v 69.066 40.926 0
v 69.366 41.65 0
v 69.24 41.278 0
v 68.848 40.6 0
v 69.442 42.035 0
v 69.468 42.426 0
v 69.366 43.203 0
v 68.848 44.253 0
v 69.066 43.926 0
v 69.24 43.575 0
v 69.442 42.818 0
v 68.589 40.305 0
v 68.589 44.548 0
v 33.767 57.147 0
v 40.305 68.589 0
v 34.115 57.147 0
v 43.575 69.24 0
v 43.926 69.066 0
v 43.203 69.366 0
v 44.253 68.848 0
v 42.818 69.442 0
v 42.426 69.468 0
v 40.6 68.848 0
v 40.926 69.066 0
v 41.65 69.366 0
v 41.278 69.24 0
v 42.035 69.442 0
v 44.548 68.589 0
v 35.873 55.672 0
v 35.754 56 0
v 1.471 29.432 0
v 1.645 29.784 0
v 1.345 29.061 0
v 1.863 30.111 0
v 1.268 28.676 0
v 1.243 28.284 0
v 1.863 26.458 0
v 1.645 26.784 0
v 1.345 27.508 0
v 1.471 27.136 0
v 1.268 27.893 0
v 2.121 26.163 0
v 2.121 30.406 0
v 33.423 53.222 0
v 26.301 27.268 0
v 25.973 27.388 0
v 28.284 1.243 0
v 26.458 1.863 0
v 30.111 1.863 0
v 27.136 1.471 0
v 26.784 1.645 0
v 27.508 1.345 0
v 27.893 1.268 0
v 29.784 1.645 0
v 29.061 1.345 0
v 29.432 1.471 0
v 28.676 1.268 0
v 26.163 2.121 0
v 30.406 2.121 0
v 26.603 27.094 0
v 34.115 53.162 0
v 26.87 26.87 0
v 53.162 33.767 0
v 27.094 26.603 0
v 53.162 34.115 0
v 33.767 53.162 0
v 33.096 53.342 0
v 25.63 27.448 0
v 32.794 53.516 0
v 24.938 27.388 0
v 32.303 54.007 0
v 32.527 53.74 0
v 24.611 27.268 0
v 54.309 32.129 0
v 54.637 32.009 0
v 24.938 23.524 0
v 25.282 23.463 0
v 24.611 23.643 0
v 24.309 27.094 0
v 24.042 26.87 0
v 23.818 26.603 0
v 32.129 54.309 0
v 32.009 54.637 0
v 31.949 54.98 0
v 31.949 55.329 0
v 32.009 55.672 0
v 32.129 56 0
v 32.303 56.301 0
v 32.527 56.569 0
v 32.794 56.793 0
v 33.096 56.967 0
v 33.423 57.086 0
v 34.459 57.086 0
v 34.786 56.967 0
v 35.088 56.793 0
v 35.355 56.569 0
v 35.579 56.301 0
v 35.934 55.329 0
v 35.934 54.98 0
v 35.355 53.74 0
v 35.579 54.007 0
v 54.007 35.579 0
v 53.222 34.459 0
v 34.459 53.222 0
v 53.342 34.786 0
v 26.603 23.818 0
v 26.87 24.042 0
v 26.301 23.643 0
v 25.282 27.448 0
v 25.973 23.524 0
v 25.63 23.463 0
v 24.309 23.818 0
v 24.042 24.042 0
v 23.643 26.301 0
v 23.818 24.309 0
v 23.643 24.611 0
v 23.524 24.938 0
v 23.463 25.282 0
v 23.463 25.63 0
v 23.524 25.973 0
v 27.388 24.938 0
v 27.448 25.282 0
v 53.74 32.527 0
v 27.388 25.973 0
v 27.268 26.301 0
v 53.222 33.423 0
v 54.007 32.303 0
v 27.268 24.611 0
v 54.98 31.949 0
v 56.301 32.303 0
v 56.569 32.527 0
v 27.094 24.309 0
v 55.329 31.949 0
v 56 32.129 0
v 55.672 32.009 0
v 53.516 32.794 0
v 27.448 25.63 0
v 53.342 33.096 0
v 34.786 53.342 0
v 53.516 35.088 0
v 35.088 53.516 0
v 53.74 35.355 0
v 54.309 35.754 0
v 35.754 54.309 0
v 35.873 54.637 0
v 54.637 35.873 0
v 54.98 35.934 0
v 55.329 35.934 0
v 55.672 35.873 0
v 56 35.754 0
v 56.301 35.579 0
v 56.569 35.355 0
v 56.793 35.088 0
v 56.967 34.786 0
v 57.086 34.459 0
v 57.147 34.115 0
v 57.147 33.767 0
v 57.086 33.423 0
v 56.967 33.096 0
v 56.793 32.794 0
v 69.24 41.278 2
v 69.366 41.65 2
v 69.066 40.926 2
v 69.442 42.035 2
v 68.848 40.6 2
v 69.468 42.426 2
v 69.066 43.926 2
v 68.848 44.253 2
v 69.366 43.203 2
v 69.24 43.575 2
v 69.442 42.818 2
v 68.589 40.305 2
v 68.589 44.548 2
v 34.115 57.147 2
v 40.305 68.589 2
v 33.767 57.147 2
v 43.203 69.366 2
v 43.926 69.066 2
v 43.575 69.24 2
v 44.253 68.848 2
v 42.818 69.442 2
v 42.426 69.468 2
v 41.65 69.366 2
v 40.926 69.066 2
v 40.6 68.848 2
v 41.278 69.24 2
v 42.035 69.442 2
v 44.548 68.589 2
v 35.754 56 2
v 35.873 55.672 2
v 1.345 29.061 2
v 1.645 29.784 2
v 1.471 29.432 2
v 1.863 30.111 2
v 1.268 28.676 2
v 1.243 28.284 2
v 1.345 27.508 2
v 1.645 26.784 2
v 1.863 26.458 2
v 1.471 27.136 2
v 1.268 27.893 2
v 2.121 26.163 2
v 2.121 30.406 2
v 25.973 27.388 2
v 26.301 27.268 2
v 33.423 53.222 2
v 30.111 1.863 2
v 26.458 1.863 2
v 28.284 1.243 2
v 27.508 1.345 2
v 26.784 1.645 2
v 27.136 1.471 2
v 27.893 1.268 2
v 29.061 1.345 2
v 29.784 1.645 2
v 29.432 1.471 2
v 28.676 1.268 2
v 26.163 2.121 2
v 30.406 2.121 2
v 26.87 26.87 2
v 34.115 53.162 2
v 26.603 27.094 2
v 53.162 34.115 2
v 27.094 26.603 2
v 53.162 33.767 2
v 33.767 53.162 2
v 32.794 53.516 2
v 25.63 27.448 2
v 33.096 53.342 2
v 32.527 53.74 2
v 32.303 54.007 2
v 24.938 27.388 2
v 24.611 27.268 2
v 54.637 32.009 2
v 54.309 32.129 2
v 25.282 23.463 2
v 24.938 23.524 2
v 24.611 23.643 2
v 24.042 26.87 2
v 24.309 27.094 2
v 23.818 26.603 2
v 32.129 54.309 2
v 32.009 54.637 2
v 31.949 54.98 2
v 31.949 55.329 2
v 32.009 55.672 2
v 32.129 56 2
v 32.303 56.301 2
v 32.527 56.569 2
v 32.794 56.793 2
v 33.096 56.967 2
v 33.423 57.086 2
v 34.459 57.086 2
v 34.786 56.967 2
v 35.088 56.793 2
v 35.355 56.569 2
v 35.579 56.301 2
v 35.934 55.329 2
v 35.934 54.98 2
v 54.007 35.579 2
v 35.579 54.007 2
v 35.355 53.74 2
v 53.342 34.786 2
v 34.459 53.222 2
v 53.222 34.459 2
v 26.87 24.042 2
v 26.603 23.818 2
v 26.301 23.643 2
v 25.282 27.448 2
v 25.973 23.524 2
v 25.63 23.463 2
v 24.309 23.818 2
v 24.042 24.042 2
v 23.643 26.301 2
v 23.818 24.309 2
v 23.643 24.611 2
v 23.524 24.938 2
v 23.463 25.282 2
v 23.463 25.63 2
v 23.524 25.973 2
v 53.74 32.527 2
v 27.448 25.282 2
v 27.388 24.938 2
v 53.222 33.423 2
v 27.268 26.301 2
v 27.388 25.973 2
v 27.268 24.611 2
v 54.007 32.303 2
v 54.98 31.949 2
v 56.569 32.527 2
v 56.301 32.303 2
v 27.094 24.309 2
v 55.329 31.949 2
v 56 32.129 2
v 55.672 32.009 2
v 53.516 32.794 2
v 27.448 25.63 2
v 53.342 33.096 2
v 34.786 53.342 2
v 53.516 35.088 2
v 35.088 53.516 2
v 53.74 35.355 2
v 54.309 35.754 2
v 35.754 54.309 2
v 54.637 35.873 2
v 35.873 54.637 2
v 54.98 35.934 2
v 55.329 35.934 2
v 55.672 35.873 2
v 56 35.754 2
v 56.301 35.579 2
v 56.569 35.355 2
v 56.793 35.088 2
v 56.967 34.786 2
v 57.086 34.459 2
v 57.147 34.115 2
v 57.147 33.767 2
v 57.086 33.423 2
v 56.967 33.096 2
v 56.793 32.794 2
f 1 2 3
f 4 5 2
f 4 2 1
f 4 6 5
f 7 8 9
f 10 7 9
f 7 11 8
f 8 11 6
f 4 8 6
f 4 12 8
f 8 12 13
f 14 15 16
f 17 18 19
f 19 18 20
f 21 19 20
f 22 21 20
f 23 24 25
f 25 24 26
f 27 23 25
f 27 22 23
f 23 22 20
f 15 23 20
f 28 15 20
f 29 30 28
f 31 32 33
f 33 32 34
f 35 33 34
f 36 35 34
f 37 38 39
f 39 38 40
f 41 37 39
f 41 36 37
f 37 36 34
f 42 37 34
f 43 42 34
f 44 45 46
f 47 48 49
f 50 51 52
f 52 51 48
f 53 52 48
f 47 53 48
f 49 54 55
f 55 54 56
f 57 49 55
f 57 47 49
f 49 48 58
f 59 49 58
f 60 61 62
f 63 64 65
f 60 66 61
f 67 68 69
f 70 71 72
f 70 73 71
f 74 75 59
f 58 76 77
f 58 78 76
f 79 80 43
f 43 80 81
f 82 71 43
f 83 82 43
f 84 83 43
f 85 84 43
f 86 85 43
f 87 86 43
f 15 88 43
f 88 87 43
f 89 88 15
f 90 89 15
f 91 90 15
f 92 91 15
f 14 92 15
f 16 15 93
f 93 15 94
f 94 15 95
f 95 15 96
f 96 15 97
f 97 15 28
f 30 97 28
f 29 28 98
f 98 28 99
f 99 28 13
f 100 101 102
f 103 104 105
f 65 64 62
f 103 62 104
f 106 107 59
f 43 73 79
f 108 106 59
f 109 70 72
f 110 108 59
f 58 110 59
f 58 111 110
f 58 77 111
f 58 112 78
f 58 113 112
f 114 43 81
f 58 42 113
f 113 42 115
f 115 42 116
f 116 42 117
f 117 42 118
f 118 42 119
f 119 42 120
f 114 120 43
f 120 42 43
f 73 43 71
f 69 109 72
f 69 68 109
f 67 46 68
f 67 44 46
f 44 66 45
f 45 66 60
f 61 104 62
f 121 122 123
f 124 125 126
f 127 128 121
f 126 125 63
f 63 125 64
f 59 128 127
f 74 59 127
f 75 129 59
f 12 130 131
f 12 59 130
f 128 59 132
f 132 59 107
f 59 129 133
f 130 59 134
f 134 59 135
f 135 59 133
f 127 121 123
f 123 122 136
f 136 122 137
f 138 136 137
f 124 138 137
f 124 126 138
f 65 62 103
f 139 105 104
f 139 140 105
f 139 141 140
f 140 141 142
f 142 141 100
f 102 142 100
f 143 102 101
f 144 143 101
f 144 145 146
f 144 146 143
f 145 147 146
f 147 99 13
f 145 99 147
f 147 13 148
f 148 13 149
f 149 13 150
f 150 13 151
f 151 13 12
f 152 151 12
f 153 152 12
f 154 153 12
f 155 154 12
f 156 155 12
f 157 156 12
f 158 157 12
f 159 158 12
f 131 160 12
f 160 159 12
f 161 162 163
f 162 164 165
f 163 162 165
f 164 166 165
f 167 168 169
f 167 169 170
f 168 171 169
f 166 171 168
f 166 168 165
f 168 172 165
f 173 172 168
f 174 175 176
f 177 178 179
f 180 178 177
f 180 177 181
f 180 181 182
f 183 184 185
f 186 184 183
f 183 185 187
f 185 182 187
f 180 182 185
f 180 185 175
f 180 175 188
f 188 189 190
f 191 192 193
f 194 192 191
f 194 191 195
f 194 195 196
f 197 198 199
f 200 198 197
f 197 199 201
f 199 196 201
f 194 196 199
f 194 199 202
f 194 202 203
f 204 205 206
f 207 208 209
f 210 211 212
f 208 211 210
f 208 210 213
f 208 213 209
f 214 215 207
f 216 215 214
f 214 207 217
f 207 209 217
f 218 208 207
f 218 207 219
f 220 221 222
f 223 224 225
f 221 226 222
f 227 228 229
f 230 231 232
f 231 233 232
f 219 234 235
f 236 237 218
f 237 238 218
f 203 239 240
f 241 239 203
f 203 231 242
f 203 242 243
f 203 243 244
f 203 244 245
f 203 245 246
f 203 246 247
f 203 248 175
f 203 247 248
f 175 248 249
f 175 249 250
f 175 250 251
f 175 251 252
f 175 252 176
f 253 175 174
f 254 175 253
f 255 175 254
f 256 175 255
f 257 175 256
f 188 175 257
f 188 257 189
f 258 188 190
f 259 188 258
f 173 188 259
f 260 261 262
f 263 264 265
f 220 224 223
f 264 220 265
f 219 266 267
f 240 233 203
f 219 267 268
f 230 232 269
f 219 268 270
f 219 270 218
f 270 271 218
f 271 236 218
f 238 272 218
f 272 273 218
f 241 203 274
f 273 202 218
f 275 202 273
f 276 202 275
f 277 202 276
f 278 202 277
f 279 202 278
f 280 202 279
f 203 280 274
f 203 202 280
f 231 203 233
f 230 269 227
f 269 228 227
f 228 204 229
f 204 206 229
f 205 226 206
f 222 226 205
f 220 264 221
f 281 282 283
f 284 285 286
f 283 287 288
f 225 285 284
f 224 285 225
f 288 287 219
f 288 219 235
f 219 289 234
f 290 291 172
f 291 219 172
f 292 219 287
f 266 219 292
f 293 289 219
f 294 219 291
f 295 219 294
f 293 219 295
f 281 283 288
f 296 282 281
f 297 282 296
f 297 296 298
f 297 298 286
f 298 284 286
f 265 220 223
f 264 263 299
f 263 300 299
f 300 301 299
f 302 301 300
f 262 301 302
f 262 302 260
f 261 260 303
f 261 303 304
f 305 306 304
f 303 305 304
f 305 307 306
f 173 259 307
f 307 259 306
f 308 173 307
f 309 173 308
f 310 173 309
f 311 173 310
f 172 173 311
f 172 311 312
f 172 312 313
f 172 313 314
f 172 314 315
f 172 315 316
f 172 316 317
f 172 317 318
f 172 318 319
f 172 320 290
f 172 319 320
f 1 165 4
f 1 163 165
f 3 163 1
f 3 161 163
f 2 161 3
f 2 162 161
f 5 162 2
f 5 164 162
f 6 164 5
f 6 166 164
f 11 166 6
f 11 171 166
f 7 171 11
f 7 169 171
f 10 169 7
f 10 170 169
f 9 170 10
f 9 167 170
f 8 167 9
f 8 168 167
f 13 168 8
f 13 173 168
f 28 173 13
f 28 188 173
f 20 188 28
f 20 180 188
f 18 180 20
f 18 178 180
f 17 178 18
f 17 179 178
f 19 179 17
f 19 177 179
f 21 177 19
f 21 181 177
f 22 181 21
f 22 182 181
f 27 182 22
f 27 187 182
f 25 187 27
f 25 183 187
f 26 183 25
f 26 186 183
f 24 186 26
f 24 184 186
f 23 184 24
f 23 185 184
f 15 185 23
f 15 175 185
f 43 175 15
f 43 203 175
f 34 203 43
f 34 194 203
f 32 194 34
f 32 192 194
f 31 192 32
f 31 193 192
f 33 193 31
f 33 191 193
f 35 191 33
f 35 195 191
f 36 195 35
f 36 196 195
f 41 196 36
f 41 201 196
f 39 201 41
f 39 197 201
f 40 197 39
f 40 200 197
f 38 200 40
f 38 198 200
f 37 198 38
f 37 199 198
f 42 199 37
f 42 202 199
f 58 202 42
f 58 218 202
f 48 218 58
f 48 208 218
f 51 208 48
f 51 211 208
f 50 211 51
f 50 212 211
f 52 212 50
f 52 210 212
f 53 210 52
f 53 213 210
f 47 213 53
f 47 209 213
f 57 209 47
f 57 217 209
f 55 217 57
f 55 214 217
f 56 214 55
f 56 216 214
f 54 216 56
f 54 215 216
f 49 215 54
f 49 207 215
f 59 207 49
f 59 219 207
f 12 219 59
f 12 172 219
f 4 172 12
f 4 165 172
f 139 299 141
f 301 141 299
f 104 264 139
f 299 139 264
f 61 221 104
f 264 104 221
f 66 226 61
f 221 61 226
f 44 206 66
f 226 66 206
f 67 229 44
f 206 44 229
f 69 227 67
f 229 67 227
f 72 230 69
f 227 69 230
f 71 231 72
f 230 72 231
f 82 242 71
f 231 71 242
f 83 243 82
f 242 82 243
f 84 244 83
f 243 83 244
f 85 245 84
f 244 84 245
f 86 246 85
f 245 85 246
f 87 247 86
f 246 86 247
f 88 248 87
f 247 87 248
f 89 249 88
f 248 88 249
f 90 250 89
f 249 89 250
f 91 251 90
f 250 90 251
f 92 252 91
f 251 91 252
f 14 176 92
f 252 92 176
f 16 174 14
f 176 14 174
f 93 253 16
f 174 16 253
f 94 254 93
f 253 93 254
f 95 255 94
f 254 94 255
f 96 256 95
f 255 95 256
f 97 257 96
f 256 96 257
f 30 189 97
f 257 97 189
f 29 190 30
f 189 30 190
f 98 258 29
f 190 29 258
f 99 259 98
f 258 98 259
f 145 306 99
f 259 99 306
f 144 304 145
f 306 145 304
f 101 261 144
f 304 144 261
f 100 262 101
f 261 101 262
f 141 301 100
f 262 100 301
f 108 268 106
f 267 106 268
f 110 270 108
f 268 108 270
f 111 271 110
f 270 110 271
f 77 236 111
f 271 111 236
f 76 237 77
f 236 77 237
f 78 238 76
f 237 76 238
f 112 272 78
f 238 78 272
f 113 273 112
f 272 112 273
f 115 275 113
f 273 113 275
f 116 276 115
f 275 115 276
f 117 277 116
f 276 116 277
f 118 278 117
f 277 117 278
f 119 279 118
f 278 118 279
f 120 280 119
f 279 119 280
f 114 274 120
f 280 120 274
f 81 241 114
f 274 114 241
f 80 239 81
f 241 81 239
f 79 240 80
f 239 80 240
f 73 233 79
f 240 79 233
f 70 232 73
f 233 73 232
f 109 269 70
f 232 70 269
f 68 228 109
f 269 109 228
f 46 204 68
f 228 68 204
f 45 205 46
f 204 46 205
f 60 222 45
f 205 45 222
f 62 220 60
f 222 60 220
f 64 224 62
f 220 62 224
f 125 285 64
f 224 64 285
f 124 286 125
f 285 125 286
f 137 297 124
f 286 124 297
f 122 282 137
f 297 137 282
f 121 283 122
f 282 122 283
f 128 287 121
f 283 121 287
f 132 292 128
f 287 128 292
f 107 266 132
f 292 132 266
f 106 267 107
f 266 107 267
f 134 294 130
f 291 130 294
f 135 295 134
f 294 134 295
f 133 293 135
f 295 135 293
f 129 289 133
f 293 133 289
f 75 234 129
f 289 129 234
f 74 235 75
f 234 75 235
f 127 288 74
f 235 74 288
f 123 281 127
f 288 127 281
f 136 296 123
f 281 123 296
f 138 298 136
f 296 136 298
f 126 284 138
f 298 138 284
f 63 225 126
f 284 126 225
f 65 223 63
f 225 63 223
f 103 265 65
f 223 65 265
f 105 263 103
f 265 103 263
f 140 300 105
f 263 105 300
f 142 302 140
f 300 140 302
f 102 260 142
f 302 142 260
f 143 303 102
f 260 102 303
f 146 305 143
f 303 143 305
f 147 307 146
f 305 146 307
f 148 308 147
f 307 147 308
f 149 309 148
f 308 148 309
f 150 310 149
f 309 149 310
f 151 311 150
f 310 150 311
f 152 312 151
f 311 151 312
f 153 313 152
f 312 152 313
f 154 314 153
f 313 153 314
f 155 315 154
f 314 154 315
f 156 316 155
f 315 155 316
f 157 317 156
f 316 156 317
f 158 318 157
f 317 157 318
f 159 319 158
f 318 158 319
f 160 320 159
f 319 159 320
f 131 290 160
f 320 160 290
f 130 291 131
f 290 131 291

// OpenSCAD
//
// S500 Top-Plate Carbon Doublers (Rectangular) — OpenSCAD
// Author: ChatGPT
// Version: v0.2 (2025-10-28) — fix: ternary module call -> if/else; use let() scoping
//

export_mode = "3D";    // "3D" or "DXF"
show_stl    = false;
show_patches= true;
print_one   = true;
stl_alpha   = 0.25;

stl_path    = "top_frame_s500.STL";
stl_rotate_z    = 45;            
stl_translate   = [-97.5, 0, 0];    
stl_scale       = 1.0;          

cf_thickness = 2.0;  
corner_r     = 3.0;  
kerf         = 0.10; 

patch_len    = 60;    
patch_wid    = 40;    
r_patch      = 50;    

arm_angles   = [45, 135, 225, 315];

hole_d        = 4;  
slot_d        = 3.2;  
slot_len      = 0;    

pattern_arm0 = [[-14,0],[13,-15],[13,15],[-14,0]];
pattern_arm1 = pattern_arm0;
pattern_arm2 = pattern_arm0;
pattern_arm3 = pattern_arm0;

module rounded_rect_2d(w, h, r) {
    offset(delta=kerf) offset(delta=-kerf)
    hull() {
        translate([ w/2 - r,  h/2 - r]) circle(r=r, $fn=48);
        translate([-w/2 + r,  h/2 - r]) circle(r=r, $fn=48);
        translate([ w/2 - r, -h/2 + r]) circle(r=r, $fn=48);
        translate([-w/2 + r, -h/2 + r]) circle(r=r, $fn=48);
    }
}

module hole_2d(d) { circle(d=d, $fn=36); }

module slot_2d(d, L) {
    hull() {
        translate([+L/2 - d/2, 0]) circle(d=d, $fn=36);
        translate([-L/2 + d/2, 0]) circle(d=d, $fn=36);
    }
}

module patch_2d(w, h, r, hole_pts) {
    difference() {
        rounded_rect_2d(w, h, r);
        for (p = hole_pts) {
            translate(p)
                if (slot_len > 0)
                    slot_2d(slot_d, slot_len);
                else
                    hole_2d(hole_d);
        }
    }
}

module patch_3d(w, h, r, hole_pts) {
    linear_extrude(height=cf_thickness)
        patch_2d(w, h, r, hole_pts);
}

function select_pattern(idx) =
    idx == 0 ? pattern_arm0 :
    idx == 1 ? pattern_arm1 :
    idx == 2 ? pattern_arm2 : pattern_arm3;

module all_patches_2d() {
    for (i = [0:len(arm_angles)-1]) {
        let(angle = arm_angles[i])
        rotate([0,0,angle])
            translate([r_patch, 0])
                patch_2d(patch_len, patch_wid, corner_r, select_pattern(i));
    }
}

module all_patches_3d() {
    if (print_one) {
        i = 0;
        let(angle = arm_angles[i])
        rotate([0,0,angle])
            translate([r_patch, 0])
                patch_3d(patch_len, patch_wid, corner_r, select_pattern(i));
    
    }
    else
    {
        for (i = [0:len(arm_angles)-1]) {
            let(angle = arm_angles[i])
            rotate([0,0,angle])
                translate([r_patch, 0])
                    patch_3d(patch_len, patch_wid, corner_r, select_pattern(i));
        }
    }
}

module ref_stl() {
    color([0.1,0.5,1.0, stl_alpha])
        translate(stl_translate)
            rotate([90,0,stl_rotate_z])
                scale(stl_scale)
                    import(stl_path, convexity=5);
}

if (export_mode == "DXF") {
    projection(cut=true) all_patches_2d();
} else {
    if (show_stl) ref_stl();
    if (show_patches) color("black") all_patches_3d();
}
